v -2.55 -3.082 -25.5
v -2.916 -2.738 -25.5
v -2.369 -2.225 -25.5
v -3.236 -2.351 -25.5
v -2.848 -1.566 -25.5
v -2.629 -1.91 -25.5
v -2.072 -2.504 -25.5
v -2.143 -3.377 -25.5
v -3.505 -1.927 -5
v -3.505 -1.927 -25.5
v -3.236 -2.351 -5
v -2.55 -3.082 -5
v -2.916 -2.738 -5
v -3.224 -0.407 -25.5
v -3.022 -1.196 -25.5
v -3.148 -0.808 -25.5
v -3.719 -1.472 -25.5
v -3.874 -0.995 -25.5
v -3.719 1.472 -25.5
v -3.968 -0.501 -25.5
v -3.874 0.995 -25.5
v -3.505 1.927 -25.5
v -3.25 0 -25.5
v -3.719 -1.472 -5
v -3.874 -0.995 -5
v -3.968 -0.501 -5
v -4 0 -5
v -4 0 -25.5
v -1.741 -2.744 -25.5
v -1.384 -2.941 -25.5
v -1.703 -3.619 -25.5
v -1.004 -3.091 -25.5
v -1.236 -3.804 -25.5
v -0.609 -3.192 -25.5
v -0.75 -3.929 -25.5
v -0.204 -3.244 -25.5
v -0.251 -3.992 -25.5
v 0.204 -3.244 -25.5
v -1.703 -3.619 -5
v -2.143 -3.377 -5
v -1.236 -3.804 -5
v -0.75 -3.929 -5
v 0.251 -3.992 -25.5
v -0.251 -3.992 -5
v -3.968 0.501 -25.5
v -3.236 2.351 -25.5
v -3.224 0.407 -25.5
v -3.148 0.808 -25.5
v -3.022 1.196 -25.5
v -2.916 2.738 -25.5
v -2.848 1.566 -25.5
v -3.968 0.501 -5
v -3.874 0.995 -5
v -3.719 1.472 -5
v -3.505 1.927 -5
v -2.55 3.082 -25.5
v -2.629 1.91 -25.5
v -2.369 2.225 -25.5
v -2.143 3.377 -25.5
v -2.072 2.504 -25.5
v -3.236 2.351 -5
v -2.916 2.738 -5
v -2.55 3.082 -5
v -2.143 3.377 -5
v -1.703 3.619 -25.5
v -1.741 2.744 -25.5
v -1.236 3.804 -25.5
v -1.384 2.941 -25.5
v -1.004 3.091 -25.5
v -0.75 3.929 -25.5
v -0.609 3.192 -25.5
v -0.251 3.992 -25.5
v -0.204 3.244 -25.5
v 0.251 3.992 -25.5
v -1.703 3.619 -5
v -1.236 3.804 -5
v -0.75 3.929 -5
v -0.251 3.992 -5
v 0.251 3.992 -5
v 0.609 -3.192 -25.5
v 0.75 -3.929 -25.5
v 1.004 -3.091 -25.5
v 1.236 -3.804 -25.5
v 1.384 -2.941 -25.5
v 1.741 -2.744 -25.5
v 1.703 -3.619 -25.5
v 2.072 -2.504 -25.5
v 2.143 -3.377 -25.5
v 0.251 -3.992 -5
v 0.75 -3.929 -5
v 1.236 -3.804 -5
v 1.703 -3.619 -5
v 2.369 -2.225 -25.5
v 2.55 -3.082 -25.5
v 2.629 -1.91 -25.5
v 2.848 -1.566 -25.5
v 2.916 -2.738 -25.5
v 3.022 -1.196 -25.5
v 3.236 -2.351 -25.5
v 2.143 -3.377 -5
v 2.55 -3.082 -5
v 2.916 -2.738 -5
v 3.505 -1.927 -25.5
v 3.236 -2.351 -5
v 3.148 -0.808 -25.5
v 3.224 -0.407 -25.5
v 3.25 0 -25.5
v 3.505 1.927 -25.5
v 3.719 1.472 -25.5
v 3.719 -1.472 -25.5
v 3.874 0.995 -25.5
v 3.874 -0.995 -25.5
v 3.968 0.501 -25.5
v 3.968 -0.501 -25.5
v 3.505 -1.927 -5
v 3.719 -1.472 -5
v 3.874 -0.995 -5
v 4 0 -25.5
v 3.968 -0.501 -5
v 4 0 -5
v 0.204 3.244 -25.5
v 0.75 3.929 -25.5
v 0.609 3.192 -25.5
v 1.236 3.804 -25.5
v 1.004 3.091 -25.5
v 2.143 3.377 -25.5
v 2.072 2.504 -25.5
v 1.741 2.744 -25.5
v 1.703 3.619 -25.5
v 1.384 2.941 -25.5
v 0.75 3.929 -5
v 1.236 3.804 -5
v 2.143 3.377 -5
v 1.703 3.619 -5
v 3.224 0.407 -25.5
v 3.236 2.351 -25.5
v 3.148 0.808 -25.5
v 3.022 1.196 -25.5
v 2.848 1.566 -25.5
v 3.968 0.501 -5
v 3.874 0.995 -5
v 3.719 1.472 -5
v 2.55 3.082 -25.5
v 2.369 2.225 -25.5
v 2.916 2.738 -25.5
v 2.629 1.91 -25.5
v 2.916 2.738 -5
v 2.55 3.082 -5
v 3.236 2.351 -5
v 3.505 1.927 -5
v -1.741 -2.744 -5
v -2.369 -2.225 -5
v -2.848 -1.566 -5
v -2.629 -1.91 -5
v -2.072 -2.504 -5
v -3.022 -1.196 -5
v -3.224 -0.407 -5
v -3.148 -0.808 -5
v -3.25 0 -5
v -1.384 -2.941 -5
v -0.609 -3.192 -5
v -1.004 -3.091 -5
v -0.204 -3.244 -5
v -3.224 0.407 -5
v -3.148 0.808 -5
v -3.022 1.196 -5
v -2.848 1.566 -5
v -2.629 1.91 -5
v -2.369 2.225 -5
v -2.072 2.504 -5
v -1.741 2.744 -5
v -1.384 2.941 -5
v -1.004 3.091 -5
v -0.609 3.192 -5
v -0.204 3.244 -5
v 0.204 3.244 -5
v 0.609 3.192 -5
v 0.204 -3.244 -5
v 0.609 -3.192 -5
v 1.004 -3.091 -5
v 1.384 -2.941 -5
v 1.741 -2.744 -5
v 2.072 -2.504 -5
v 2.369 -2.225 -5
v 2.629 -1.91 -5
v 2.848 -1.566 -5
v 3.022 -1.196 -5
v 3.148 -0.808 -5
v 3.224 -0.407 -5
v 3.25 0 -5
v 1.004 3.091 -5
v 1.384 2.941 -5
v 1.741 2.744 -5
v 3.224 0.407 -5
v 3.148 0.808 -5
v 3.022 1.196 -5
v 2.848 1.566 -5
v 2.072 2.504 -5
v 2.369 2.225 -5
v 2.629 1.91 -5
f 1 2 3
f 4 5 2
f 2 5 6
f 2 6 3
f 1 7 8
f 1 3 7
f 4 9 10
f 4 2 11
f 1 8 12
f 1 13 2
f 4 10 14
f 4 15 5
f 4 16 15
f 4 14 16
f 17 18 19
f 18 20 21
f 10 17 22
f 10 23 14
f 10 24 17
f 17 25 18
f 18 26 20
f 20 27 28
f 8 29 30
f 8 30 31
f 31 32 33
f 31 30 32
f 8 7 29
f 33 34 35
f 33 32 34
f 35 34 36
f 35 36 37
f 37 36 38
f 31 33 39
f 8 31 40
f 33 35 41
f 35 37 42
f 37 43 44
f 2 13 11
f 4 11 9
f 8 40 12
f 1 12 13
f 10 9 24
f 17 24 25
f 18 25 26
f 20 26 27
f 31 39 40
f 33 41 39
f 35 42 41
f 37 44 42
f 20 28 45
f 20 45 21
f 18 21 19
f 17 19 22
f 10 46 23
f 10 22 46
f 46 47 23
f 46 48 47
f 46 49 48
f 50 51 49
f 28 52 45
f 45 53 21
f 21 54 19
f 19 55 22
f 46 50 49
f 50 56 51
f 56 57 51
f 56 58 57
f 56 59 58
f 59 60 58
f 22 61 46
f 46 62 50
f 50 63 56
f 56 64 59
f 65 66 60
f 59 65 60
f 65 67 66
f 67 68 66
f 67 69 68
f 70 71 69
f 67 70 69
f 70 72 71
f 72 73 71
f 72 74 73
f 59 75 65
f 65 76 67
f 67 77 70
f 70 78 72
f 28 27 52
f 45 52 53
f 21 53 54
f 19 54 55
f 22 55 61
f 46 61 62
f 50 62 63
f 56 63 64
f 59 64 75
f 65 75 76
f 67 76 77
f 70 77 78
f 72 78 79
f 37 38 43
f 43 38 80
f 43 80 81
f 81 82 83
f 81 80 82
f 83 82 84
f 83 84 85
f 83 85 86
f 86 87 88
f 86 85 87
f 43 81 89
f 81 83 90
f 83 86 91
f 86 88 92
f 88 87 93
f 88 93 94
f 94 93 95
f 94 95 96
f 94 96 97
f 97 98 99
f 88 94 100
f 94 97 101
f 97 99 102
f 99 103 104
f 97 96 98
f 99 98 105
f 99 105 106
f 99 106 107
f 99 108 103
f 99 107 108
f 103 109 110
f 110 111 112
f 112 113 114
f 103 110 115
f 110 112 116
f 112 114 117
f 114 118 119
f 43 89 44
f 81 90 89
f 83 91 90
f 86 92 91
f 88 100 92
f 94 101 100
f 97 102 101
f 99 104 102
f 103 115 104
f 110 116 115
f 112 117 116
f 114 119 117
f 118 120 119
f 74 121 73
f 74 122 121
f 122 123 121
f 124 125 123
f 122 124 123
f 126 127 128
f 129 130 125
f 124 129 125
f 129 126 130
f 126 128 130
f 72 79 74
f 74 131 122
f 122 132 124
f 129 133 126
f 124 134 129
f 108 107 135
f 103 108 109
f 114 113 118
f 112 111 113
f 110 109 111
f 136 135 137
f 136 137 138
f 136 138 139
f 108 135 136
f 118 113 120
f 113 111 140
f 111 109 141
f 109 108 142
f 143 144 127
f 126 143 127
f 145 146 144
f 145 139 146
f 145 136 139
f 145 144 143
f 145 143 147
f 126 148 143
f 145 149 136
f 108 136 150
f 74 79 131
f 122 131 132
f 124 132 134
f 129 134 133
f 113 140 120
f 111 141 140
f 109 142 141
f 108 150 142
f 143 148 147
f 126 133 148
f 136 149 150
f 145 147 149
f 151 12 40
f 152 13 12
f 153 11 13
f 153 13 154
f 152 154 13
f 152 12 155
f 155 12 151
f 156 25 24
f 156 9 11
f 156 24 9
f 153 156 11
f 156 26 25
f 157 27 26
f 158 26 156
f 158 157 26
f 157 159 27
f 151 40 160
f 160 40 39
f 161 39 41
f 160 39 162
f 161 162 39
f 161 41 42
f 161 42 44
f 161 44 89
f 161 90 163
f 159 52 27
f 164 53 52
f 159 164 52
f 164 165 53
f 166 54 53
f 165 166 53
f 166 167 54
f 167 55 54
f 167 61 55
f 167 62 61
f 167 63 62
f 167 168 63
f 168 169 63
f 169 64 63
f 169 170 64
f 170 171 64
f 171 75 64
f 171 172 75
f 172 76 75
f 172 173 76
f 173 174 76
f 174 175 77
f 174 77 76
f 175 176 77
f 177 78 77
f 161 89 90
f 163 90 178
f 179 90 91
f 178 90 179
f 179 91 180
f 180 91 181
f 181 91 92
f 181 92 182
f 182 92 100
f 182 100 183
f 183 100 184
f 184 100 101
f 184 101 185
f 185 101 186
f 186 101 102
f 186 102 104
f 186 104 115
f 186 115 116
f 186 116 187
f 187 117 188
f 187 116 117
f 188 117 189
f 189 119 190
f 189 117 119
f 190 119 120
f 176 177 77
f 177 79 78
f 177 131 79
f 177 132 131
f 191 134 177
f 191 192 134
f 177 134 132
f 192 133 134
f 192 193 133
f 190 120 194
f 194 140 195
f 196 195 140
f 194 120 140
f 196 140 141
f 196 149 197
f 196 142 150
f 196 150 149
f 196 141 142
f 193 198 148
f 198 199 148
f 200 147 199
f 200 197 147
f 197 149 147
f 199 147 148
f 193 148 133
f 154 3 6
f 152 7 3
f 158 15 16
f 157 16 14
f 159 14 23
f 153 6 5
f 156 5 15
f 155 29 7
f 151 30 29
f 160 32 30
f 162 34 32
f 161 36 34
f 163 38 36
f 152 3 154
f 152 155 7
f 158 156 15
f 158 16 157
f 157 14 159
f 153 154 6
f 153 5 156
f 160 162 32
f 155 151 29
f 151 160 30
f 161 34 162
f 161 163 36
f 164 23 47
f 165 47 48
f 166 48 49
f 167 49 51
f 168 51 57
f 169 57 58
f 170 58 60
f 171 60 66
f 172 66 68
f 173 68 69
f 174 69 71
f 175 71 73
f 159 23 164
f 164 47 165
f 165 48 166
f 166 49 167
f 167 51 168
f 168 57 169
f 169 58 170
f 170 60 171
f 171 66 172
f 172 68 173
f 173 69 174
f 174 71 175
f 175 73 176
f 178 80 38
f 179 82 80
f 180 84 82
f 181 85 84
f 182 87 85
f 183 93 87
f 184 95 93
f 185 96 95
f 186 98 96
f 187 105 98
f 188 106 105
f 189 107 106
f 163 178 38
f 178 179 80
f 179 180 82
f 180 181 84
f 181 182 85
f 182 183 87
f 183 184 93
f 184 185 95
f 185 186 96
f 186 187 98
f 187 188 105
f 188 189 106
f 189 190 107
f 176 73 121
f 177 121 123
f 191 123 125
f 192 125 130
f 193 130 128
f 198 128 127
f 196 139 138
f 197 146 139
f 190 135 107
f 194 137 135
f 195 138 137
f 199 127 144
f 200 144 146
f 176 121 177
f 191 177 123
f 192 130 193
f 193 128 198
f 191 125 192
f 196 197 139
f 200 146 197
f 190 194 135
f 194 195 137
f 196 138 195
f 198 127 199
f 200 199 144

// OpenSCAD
$fn = 50;

difference() {
	union() {
		translate(v = [0, 0, -25.5]) {
			cylinder(h = 28.5, r = 4.0);
		}
		#translate(v = [0, 0, -27.0]) {
			cylinder(h = 27, r = 2.875);
		}
	}
	union() {
		translate(v = [0, 0, 0]) {
			rotate(a = [0, 0, 0]) {
				difference() {
					union() {
						translate(v = [0, 0, -5]) {
							linear_extrude(height = 5) {
								polygon(points = [[5.914249999999999, 0.0], [2.957125, 5.1218907443321156], [-2.9571249999999982, 5.1218907443321156], [-5.914249999999999, 7.242867331857232e-16], [-2.9571250000000022, -5.121890744332115], [2.9571249999999956, -5.121890744332118]]);
							}
						}
					}
					union();
				}
			}
		}
		#cylinder(h = 3, r = 6.25);
		#translate(v = [0, 0, -100.0]) {
			cylinder(h = 200, r = 3.25);
		}
	}
}
